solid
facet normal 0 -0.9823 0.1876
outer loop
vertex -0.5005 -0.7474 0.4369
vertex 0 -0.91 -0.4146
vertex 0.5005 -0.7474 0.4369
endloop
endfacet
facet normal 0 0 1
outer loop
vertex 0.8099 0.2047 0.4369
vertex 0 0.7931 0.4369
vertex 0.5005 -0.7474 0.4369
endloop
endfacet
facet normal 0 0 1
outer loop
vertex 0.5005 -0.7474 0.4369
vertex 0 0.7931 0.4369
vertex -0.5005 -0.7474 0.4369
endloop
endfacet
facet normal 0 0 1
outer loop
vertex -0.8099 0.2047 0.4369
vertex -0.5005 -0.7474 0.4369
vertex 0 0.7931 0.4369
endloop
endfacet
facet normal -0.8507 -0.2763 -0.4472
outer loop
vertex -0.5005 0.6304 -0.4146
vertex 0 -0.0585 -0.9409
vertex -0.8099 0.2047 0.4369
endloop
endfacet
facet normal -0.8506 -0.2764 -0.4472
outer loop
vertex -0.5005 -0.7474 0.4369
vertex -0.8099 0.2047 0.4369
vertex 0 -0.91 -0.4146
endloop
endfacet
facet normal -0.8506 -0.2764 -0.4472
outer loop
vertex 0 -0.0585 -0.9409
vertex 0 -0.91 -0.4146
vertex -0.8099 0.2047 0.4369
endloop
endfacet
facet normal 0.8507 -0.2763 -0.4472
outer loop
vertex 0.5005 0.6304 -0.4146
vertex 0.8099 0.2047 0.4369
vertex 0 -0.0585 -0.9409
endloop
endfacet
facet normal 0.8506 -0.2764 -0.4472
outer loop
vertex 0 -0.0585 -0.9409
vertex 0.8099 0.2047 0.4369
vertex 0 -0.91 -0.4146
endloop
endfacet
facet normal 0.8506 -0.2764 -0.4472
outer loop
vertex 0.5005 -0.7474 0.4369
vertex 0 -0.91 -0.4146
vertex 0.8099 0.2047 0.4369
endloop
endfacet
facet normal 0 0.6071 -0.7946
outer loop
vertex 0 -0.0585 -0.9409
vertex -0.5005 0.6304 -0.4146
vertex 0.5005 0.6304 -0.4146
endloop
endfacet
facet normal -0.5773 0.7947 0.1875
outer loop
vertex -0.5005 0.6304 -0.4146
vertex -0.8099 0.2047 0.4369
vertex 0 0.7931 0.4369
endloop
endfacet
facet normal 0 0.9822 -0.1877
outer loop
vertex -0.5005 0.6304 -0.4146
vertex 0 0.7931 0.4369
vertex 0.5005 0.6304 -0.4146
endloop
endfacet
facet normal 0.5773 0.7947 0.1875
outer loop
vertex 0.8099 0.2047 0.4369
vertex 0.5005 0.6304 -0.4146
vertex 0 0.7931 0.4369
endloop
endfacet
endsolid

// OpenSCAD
polyhedron( points = [[-0.500516800965404, -0.747377221218932, 0.436932742098112], [1.08379744982727e-11, -0.910004988109168, -0.414597300541663], [-1.20096924725678e-11, -0.0584749452915478, -0.940871809247004], [-0.500516800962277, 0.630427330399116, -0.41459730041269], [-0.809853195879991, 0.204662309033359, 0.436932742098112], [0.500516800935184, -0.747377221218932, 0.436932742098112], [0.80985319589703, 0.204662308887921, 0.436932742098112], [0.500516800915278, 0.630427330325711, -0.414597300289205], [6.13521000218055e-11, 0.793055097192474, 0.436932742098112]], faces = [[0, 1, 5], [0, 5, 6, 8, 4], [0, 4, 3, 2, 1], [1, 2, 7, 6, 5], [2, 3, 7], [3, 4, 8], [3, 8, 7], [6, 7, 8]]);
